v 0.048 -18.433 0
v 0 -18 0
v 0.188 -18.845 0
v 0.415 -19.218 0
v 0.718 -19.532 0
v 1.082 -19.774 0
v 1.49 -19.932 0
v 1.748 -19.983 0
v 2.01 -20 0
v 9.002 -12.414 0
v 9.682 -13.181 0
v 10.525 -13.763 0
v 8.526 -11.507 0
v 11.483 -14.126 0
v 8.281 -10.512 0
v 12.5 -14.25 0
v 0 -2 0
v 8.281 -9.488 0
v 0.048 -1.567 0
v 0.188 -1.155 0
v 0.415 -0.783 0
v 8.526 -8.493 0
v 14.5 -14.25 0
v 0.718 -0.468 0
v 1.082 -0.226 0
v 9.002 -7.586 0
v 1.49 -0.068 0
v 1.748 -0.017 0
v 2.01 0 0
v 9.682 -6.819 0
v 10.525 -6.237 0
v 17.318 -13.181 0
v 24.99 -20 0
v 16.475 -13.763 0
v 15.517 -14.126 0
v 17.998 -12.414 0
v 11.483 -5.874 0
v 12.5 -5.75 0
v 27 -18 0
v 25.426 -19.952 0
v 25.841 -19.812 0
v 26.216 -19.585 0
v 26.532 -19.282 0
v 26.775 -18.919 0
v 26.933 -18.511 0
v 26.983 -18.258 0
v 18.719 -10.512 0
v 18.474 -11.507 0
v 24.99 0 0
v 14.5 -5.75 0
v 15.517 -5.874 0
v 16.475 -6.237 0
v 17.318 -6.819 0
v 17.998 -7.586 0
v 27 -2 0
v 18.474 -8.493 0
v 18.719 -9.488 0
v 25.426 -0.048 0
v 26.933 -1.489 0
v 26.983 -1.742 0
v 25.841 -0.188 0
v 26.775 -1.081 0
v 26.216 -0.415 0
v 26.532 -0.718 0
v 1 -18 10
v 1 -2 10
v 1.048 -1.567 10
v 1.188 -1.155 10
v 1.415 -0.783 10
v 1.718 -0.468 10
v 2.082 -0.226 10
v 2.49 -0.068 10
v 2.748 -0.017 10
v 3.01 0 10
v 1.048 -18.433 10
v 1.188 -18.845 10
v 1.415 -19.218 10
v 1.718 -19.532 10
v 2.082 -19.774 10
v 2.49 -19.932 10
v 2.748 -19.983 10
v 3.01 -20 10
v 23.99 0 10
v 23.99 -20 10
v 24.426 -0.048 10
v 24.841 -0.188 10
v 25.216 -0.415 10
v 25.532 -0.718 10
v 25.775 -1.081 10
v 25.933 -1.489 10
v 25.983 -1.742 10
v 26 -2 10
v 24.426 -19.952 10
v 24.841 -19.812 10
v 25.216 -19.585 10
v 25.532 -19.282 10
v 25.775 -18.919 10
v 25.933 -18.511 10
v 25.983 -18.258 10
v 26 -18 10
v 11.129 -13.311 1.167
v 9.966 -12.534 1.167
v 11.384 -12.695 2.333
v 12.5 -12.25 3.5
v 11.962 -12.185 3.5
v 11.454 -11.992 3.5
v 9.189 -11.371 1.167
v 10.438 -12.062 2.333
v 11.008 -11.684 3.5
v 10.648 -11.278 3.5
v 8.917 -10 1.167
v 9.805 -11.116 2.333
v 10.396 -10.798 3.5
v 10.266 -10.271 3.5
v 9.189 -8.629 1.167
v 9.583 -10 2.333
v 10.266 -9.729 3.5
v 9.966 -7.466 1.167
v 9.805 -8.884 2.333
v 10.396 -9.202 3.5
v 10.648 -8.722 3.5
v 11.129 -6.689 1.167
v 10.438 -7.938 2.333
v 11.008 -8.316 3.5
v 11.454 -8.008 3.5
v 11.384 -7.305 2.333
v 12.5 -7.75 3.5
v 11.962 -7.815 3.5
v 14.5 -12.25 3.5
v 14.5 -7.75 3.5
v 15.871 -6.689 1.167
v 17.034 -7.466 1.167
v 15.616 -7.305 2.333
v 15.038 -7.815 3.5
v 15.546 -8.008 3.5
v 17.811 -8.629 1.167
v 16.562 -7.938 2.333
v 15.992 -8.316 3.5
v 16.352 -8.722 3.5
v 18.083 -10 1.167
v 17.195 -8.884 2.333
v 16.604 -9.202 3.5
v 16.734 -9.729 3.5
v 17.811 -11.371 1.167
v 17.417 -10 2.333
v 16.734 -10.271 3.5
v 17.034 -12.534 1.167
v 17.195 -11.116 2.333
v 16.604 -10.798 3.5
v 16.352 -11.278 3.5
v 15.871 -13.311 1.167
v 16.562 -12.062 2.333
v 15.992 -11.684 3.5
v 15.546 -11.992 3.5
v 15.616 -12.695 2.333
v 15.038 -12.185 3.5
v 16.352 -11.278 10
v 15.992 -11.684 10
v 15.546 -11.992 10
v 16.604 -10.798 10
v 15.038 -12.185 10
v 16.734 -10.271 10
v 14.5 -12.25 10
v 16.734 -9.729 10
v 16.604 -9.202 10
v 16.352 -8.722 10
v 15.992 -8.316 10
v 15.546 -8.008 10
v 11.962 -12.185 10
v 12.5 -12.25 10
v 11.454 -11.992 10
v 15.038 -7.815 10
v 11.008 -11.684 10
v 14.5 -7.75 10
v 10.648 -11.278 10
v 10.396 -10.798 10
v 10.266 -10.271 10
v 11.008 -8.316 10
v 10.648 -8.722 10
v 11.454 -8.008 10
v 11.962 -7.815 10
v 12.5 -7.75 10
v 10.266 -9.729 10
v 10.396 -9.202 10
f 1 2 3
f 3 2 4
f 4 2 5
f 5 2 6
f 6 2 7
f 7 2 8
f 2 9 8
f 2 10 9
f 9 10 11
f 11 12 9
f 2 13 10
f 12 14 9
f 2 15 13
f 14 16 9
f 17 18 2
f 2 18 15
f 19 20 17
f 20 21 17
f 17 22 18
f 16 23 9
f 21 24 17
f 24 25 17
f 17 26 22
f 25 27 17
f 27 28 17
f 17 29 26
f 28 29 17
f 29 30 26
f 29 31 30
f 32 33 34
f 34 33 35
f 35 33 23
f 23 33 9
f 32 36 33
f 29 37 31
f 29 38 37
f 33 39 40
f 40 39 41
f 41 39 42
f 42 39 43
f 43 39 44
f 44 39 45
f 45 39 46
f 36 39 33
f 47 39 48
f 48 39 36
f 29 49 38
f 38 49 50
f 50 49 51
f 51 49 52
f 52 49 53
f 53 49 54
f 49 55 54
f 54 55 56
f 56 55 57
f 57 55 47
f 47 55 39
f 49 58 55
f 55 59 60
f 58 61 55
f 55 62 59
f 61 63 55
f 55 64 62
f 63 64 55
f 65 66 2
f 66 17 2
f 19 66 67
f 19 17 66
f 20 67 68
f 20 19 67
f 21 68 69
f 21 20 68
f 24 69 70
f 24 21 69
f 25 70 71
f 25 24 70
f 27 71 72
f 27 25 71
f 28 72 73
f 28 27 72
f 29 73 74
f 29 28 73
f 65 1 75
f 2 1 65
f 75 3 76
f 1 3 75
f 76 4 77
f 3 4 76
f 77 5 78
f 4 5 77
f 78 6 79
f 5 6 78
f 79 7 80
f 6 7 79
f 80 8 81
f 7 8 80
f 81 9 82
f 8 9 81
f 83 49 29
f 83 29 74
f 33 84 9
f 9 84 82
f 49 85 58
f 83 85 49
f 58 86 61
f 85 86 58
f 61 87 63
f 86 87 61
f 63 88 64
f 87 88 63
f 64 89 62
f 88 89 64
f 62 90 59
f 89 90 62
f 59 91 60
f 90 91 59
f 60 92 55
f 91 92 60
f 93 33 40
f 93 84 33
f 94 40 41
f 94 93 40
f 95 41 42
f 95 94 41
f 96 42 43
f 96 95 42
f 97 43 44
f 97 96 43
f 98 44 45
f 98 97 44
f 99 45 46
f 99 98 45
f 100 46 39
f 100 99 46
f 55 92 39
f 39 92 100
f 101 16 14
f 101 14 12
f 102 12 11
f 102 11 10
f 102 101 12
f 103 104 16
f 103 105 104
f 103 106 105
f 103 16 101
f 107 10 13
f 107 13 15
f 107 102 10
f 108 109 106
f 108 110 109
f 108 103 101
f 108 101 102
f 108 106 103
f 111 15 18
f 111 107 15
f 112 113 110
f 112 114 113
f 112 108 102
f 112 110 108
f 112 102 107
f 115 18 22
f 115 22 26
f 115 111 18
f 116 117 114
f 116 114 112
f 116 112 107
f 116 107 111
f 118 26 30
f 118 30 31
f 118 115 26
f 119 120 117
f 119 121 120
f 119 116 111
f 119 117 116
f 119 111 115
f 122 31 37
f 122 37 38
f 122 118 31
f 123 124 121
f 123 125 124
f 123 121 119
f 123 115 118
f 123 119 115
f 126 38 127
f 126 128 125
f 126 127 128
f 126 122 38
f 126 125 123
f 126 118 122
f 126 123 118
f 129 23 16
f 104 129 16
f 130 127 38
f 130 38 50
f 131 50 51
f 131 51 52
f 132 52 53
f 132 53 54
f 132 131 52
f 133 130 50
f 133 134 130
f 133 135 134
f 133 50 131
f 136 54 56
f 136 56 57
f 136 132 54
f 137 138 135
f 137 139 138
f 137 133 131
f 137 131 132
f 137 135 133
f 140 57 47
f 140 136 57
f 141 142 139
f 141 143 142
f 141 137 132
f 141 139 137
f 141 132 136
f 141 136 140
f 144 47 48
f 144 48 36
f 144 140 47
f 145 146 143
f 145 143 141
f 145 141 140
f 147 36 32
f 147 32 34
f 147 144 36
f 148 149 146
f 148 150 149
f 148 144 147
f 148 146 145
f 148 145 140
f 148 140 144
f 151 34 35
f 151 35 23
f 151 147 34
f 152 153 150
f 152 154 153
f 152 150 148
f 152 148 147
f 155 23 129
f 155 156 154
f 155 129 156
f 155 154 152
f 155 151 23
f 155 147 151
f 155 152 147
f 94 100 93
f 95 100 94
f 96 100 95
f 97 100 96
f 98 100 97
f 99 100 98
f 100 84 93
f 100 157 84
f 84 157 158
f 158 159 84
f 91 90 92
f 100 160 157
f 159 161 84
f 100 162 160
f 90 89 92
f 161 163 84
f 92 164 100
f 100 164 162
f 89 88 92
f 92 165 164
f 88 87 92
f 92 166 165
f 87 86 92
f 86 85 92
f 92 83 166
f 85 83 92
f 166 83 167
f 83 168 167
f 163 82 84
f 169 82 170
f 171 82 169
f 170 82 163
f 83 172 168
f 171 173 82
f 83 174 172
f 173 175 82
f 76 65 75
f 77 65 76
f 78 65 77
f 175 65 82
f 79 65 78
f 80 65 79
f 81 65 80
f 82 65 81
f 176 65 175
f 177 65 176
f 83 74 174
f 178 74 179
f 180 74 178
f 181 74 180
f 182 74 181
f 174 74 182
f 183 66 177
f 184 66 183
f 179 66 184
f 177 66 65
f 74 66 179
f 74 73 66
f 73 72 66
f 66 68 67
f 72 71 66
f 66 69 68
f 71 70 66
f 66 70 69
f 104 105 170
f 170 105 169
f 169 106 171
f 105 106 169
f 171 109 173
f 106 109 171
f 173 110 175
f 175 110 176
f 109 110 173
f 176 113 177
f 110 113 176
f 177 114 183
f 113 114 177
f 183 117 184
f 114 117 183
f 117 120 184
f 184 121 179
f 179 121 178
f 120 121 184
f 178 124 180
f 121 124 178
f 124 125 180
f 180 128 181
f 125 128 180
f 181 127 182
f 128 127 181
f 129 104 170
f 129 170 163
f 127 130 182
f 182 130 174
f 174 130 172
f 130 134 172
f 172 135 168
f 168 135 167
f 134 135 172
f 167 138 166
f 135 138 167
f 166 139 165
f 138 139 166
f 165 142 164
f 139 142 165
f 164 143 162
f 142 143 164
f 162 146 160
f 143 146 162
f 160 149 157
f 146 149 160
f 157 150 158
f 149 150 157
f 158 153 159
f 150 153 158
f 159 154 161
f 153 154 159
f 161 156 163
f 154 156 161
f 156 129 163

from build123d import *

# Parameters (mm, degrees)
PAD_DEPTH     = 20
POCKET_DEPTH  = 10.001
CHAMFER_SIZE2 = 3.5
CHAMFER_SIZE  = 2
FILLET_R      = 2


with BuildPart() as part:
    # Sketch → Pad (new body)
    with BuildSketch(Plane.XZ):
        Polygon((0, 0), (27, 0), (26, 10), (1, 10), align=None)
    extrude(amount=PAD_DEPTH)

    # Sketch001 (on Face1 of Pad) → Pocket (cut, through all)
    with BuildSketch(Plane(origin=(0, 0, 0), x_dir=(1, 0, 0), z_dir=(0, 0, -1))):
        with BuildLine():
            ThreePointArc((12.5, 12.25), (10.25, 10), (12.5, 7.75))
            Line((12.5, 7.75), (14.5, 7.75))
            ThreePointArc((14.5, 7.75), (16.75, 10), (14.5, 12.25))
            Line((12.5, 12.25), (14.5, 12.25))
        make_face()
    extrude(amount=-POCKET_DEPTH, mode=Mode.SUBTRACT)

    # Chamfer
    chamfer_edges = [part.edges().sort_by_distance(p)[0] for p in [
        (10.25, -10, 0),
        (13.5, -12.25, 0),
        (16.75, -10, 0),
        (13.5, -7.75, 0),
    ]]
    chamfer_side = part.faces().sort_by_distance((0.336006, -10, 0))[0]
    chamfer(chamfer_edges, length=CHAMFER_SIZE, length2=CHAMFER_SIZE2, reference=chamfer_side)

    # Fillet
    fillet_edges = [part.edges().sort_by_distance(p)[0] for p in [
        (26.5, -20, 5),
        (0.5, -20, 5),
        (26.5, 0, 5),
        (0.5, 0, 5),
    ]]
    fillet(fillet_edges, radius=FILLET_R)


solid = part.part
